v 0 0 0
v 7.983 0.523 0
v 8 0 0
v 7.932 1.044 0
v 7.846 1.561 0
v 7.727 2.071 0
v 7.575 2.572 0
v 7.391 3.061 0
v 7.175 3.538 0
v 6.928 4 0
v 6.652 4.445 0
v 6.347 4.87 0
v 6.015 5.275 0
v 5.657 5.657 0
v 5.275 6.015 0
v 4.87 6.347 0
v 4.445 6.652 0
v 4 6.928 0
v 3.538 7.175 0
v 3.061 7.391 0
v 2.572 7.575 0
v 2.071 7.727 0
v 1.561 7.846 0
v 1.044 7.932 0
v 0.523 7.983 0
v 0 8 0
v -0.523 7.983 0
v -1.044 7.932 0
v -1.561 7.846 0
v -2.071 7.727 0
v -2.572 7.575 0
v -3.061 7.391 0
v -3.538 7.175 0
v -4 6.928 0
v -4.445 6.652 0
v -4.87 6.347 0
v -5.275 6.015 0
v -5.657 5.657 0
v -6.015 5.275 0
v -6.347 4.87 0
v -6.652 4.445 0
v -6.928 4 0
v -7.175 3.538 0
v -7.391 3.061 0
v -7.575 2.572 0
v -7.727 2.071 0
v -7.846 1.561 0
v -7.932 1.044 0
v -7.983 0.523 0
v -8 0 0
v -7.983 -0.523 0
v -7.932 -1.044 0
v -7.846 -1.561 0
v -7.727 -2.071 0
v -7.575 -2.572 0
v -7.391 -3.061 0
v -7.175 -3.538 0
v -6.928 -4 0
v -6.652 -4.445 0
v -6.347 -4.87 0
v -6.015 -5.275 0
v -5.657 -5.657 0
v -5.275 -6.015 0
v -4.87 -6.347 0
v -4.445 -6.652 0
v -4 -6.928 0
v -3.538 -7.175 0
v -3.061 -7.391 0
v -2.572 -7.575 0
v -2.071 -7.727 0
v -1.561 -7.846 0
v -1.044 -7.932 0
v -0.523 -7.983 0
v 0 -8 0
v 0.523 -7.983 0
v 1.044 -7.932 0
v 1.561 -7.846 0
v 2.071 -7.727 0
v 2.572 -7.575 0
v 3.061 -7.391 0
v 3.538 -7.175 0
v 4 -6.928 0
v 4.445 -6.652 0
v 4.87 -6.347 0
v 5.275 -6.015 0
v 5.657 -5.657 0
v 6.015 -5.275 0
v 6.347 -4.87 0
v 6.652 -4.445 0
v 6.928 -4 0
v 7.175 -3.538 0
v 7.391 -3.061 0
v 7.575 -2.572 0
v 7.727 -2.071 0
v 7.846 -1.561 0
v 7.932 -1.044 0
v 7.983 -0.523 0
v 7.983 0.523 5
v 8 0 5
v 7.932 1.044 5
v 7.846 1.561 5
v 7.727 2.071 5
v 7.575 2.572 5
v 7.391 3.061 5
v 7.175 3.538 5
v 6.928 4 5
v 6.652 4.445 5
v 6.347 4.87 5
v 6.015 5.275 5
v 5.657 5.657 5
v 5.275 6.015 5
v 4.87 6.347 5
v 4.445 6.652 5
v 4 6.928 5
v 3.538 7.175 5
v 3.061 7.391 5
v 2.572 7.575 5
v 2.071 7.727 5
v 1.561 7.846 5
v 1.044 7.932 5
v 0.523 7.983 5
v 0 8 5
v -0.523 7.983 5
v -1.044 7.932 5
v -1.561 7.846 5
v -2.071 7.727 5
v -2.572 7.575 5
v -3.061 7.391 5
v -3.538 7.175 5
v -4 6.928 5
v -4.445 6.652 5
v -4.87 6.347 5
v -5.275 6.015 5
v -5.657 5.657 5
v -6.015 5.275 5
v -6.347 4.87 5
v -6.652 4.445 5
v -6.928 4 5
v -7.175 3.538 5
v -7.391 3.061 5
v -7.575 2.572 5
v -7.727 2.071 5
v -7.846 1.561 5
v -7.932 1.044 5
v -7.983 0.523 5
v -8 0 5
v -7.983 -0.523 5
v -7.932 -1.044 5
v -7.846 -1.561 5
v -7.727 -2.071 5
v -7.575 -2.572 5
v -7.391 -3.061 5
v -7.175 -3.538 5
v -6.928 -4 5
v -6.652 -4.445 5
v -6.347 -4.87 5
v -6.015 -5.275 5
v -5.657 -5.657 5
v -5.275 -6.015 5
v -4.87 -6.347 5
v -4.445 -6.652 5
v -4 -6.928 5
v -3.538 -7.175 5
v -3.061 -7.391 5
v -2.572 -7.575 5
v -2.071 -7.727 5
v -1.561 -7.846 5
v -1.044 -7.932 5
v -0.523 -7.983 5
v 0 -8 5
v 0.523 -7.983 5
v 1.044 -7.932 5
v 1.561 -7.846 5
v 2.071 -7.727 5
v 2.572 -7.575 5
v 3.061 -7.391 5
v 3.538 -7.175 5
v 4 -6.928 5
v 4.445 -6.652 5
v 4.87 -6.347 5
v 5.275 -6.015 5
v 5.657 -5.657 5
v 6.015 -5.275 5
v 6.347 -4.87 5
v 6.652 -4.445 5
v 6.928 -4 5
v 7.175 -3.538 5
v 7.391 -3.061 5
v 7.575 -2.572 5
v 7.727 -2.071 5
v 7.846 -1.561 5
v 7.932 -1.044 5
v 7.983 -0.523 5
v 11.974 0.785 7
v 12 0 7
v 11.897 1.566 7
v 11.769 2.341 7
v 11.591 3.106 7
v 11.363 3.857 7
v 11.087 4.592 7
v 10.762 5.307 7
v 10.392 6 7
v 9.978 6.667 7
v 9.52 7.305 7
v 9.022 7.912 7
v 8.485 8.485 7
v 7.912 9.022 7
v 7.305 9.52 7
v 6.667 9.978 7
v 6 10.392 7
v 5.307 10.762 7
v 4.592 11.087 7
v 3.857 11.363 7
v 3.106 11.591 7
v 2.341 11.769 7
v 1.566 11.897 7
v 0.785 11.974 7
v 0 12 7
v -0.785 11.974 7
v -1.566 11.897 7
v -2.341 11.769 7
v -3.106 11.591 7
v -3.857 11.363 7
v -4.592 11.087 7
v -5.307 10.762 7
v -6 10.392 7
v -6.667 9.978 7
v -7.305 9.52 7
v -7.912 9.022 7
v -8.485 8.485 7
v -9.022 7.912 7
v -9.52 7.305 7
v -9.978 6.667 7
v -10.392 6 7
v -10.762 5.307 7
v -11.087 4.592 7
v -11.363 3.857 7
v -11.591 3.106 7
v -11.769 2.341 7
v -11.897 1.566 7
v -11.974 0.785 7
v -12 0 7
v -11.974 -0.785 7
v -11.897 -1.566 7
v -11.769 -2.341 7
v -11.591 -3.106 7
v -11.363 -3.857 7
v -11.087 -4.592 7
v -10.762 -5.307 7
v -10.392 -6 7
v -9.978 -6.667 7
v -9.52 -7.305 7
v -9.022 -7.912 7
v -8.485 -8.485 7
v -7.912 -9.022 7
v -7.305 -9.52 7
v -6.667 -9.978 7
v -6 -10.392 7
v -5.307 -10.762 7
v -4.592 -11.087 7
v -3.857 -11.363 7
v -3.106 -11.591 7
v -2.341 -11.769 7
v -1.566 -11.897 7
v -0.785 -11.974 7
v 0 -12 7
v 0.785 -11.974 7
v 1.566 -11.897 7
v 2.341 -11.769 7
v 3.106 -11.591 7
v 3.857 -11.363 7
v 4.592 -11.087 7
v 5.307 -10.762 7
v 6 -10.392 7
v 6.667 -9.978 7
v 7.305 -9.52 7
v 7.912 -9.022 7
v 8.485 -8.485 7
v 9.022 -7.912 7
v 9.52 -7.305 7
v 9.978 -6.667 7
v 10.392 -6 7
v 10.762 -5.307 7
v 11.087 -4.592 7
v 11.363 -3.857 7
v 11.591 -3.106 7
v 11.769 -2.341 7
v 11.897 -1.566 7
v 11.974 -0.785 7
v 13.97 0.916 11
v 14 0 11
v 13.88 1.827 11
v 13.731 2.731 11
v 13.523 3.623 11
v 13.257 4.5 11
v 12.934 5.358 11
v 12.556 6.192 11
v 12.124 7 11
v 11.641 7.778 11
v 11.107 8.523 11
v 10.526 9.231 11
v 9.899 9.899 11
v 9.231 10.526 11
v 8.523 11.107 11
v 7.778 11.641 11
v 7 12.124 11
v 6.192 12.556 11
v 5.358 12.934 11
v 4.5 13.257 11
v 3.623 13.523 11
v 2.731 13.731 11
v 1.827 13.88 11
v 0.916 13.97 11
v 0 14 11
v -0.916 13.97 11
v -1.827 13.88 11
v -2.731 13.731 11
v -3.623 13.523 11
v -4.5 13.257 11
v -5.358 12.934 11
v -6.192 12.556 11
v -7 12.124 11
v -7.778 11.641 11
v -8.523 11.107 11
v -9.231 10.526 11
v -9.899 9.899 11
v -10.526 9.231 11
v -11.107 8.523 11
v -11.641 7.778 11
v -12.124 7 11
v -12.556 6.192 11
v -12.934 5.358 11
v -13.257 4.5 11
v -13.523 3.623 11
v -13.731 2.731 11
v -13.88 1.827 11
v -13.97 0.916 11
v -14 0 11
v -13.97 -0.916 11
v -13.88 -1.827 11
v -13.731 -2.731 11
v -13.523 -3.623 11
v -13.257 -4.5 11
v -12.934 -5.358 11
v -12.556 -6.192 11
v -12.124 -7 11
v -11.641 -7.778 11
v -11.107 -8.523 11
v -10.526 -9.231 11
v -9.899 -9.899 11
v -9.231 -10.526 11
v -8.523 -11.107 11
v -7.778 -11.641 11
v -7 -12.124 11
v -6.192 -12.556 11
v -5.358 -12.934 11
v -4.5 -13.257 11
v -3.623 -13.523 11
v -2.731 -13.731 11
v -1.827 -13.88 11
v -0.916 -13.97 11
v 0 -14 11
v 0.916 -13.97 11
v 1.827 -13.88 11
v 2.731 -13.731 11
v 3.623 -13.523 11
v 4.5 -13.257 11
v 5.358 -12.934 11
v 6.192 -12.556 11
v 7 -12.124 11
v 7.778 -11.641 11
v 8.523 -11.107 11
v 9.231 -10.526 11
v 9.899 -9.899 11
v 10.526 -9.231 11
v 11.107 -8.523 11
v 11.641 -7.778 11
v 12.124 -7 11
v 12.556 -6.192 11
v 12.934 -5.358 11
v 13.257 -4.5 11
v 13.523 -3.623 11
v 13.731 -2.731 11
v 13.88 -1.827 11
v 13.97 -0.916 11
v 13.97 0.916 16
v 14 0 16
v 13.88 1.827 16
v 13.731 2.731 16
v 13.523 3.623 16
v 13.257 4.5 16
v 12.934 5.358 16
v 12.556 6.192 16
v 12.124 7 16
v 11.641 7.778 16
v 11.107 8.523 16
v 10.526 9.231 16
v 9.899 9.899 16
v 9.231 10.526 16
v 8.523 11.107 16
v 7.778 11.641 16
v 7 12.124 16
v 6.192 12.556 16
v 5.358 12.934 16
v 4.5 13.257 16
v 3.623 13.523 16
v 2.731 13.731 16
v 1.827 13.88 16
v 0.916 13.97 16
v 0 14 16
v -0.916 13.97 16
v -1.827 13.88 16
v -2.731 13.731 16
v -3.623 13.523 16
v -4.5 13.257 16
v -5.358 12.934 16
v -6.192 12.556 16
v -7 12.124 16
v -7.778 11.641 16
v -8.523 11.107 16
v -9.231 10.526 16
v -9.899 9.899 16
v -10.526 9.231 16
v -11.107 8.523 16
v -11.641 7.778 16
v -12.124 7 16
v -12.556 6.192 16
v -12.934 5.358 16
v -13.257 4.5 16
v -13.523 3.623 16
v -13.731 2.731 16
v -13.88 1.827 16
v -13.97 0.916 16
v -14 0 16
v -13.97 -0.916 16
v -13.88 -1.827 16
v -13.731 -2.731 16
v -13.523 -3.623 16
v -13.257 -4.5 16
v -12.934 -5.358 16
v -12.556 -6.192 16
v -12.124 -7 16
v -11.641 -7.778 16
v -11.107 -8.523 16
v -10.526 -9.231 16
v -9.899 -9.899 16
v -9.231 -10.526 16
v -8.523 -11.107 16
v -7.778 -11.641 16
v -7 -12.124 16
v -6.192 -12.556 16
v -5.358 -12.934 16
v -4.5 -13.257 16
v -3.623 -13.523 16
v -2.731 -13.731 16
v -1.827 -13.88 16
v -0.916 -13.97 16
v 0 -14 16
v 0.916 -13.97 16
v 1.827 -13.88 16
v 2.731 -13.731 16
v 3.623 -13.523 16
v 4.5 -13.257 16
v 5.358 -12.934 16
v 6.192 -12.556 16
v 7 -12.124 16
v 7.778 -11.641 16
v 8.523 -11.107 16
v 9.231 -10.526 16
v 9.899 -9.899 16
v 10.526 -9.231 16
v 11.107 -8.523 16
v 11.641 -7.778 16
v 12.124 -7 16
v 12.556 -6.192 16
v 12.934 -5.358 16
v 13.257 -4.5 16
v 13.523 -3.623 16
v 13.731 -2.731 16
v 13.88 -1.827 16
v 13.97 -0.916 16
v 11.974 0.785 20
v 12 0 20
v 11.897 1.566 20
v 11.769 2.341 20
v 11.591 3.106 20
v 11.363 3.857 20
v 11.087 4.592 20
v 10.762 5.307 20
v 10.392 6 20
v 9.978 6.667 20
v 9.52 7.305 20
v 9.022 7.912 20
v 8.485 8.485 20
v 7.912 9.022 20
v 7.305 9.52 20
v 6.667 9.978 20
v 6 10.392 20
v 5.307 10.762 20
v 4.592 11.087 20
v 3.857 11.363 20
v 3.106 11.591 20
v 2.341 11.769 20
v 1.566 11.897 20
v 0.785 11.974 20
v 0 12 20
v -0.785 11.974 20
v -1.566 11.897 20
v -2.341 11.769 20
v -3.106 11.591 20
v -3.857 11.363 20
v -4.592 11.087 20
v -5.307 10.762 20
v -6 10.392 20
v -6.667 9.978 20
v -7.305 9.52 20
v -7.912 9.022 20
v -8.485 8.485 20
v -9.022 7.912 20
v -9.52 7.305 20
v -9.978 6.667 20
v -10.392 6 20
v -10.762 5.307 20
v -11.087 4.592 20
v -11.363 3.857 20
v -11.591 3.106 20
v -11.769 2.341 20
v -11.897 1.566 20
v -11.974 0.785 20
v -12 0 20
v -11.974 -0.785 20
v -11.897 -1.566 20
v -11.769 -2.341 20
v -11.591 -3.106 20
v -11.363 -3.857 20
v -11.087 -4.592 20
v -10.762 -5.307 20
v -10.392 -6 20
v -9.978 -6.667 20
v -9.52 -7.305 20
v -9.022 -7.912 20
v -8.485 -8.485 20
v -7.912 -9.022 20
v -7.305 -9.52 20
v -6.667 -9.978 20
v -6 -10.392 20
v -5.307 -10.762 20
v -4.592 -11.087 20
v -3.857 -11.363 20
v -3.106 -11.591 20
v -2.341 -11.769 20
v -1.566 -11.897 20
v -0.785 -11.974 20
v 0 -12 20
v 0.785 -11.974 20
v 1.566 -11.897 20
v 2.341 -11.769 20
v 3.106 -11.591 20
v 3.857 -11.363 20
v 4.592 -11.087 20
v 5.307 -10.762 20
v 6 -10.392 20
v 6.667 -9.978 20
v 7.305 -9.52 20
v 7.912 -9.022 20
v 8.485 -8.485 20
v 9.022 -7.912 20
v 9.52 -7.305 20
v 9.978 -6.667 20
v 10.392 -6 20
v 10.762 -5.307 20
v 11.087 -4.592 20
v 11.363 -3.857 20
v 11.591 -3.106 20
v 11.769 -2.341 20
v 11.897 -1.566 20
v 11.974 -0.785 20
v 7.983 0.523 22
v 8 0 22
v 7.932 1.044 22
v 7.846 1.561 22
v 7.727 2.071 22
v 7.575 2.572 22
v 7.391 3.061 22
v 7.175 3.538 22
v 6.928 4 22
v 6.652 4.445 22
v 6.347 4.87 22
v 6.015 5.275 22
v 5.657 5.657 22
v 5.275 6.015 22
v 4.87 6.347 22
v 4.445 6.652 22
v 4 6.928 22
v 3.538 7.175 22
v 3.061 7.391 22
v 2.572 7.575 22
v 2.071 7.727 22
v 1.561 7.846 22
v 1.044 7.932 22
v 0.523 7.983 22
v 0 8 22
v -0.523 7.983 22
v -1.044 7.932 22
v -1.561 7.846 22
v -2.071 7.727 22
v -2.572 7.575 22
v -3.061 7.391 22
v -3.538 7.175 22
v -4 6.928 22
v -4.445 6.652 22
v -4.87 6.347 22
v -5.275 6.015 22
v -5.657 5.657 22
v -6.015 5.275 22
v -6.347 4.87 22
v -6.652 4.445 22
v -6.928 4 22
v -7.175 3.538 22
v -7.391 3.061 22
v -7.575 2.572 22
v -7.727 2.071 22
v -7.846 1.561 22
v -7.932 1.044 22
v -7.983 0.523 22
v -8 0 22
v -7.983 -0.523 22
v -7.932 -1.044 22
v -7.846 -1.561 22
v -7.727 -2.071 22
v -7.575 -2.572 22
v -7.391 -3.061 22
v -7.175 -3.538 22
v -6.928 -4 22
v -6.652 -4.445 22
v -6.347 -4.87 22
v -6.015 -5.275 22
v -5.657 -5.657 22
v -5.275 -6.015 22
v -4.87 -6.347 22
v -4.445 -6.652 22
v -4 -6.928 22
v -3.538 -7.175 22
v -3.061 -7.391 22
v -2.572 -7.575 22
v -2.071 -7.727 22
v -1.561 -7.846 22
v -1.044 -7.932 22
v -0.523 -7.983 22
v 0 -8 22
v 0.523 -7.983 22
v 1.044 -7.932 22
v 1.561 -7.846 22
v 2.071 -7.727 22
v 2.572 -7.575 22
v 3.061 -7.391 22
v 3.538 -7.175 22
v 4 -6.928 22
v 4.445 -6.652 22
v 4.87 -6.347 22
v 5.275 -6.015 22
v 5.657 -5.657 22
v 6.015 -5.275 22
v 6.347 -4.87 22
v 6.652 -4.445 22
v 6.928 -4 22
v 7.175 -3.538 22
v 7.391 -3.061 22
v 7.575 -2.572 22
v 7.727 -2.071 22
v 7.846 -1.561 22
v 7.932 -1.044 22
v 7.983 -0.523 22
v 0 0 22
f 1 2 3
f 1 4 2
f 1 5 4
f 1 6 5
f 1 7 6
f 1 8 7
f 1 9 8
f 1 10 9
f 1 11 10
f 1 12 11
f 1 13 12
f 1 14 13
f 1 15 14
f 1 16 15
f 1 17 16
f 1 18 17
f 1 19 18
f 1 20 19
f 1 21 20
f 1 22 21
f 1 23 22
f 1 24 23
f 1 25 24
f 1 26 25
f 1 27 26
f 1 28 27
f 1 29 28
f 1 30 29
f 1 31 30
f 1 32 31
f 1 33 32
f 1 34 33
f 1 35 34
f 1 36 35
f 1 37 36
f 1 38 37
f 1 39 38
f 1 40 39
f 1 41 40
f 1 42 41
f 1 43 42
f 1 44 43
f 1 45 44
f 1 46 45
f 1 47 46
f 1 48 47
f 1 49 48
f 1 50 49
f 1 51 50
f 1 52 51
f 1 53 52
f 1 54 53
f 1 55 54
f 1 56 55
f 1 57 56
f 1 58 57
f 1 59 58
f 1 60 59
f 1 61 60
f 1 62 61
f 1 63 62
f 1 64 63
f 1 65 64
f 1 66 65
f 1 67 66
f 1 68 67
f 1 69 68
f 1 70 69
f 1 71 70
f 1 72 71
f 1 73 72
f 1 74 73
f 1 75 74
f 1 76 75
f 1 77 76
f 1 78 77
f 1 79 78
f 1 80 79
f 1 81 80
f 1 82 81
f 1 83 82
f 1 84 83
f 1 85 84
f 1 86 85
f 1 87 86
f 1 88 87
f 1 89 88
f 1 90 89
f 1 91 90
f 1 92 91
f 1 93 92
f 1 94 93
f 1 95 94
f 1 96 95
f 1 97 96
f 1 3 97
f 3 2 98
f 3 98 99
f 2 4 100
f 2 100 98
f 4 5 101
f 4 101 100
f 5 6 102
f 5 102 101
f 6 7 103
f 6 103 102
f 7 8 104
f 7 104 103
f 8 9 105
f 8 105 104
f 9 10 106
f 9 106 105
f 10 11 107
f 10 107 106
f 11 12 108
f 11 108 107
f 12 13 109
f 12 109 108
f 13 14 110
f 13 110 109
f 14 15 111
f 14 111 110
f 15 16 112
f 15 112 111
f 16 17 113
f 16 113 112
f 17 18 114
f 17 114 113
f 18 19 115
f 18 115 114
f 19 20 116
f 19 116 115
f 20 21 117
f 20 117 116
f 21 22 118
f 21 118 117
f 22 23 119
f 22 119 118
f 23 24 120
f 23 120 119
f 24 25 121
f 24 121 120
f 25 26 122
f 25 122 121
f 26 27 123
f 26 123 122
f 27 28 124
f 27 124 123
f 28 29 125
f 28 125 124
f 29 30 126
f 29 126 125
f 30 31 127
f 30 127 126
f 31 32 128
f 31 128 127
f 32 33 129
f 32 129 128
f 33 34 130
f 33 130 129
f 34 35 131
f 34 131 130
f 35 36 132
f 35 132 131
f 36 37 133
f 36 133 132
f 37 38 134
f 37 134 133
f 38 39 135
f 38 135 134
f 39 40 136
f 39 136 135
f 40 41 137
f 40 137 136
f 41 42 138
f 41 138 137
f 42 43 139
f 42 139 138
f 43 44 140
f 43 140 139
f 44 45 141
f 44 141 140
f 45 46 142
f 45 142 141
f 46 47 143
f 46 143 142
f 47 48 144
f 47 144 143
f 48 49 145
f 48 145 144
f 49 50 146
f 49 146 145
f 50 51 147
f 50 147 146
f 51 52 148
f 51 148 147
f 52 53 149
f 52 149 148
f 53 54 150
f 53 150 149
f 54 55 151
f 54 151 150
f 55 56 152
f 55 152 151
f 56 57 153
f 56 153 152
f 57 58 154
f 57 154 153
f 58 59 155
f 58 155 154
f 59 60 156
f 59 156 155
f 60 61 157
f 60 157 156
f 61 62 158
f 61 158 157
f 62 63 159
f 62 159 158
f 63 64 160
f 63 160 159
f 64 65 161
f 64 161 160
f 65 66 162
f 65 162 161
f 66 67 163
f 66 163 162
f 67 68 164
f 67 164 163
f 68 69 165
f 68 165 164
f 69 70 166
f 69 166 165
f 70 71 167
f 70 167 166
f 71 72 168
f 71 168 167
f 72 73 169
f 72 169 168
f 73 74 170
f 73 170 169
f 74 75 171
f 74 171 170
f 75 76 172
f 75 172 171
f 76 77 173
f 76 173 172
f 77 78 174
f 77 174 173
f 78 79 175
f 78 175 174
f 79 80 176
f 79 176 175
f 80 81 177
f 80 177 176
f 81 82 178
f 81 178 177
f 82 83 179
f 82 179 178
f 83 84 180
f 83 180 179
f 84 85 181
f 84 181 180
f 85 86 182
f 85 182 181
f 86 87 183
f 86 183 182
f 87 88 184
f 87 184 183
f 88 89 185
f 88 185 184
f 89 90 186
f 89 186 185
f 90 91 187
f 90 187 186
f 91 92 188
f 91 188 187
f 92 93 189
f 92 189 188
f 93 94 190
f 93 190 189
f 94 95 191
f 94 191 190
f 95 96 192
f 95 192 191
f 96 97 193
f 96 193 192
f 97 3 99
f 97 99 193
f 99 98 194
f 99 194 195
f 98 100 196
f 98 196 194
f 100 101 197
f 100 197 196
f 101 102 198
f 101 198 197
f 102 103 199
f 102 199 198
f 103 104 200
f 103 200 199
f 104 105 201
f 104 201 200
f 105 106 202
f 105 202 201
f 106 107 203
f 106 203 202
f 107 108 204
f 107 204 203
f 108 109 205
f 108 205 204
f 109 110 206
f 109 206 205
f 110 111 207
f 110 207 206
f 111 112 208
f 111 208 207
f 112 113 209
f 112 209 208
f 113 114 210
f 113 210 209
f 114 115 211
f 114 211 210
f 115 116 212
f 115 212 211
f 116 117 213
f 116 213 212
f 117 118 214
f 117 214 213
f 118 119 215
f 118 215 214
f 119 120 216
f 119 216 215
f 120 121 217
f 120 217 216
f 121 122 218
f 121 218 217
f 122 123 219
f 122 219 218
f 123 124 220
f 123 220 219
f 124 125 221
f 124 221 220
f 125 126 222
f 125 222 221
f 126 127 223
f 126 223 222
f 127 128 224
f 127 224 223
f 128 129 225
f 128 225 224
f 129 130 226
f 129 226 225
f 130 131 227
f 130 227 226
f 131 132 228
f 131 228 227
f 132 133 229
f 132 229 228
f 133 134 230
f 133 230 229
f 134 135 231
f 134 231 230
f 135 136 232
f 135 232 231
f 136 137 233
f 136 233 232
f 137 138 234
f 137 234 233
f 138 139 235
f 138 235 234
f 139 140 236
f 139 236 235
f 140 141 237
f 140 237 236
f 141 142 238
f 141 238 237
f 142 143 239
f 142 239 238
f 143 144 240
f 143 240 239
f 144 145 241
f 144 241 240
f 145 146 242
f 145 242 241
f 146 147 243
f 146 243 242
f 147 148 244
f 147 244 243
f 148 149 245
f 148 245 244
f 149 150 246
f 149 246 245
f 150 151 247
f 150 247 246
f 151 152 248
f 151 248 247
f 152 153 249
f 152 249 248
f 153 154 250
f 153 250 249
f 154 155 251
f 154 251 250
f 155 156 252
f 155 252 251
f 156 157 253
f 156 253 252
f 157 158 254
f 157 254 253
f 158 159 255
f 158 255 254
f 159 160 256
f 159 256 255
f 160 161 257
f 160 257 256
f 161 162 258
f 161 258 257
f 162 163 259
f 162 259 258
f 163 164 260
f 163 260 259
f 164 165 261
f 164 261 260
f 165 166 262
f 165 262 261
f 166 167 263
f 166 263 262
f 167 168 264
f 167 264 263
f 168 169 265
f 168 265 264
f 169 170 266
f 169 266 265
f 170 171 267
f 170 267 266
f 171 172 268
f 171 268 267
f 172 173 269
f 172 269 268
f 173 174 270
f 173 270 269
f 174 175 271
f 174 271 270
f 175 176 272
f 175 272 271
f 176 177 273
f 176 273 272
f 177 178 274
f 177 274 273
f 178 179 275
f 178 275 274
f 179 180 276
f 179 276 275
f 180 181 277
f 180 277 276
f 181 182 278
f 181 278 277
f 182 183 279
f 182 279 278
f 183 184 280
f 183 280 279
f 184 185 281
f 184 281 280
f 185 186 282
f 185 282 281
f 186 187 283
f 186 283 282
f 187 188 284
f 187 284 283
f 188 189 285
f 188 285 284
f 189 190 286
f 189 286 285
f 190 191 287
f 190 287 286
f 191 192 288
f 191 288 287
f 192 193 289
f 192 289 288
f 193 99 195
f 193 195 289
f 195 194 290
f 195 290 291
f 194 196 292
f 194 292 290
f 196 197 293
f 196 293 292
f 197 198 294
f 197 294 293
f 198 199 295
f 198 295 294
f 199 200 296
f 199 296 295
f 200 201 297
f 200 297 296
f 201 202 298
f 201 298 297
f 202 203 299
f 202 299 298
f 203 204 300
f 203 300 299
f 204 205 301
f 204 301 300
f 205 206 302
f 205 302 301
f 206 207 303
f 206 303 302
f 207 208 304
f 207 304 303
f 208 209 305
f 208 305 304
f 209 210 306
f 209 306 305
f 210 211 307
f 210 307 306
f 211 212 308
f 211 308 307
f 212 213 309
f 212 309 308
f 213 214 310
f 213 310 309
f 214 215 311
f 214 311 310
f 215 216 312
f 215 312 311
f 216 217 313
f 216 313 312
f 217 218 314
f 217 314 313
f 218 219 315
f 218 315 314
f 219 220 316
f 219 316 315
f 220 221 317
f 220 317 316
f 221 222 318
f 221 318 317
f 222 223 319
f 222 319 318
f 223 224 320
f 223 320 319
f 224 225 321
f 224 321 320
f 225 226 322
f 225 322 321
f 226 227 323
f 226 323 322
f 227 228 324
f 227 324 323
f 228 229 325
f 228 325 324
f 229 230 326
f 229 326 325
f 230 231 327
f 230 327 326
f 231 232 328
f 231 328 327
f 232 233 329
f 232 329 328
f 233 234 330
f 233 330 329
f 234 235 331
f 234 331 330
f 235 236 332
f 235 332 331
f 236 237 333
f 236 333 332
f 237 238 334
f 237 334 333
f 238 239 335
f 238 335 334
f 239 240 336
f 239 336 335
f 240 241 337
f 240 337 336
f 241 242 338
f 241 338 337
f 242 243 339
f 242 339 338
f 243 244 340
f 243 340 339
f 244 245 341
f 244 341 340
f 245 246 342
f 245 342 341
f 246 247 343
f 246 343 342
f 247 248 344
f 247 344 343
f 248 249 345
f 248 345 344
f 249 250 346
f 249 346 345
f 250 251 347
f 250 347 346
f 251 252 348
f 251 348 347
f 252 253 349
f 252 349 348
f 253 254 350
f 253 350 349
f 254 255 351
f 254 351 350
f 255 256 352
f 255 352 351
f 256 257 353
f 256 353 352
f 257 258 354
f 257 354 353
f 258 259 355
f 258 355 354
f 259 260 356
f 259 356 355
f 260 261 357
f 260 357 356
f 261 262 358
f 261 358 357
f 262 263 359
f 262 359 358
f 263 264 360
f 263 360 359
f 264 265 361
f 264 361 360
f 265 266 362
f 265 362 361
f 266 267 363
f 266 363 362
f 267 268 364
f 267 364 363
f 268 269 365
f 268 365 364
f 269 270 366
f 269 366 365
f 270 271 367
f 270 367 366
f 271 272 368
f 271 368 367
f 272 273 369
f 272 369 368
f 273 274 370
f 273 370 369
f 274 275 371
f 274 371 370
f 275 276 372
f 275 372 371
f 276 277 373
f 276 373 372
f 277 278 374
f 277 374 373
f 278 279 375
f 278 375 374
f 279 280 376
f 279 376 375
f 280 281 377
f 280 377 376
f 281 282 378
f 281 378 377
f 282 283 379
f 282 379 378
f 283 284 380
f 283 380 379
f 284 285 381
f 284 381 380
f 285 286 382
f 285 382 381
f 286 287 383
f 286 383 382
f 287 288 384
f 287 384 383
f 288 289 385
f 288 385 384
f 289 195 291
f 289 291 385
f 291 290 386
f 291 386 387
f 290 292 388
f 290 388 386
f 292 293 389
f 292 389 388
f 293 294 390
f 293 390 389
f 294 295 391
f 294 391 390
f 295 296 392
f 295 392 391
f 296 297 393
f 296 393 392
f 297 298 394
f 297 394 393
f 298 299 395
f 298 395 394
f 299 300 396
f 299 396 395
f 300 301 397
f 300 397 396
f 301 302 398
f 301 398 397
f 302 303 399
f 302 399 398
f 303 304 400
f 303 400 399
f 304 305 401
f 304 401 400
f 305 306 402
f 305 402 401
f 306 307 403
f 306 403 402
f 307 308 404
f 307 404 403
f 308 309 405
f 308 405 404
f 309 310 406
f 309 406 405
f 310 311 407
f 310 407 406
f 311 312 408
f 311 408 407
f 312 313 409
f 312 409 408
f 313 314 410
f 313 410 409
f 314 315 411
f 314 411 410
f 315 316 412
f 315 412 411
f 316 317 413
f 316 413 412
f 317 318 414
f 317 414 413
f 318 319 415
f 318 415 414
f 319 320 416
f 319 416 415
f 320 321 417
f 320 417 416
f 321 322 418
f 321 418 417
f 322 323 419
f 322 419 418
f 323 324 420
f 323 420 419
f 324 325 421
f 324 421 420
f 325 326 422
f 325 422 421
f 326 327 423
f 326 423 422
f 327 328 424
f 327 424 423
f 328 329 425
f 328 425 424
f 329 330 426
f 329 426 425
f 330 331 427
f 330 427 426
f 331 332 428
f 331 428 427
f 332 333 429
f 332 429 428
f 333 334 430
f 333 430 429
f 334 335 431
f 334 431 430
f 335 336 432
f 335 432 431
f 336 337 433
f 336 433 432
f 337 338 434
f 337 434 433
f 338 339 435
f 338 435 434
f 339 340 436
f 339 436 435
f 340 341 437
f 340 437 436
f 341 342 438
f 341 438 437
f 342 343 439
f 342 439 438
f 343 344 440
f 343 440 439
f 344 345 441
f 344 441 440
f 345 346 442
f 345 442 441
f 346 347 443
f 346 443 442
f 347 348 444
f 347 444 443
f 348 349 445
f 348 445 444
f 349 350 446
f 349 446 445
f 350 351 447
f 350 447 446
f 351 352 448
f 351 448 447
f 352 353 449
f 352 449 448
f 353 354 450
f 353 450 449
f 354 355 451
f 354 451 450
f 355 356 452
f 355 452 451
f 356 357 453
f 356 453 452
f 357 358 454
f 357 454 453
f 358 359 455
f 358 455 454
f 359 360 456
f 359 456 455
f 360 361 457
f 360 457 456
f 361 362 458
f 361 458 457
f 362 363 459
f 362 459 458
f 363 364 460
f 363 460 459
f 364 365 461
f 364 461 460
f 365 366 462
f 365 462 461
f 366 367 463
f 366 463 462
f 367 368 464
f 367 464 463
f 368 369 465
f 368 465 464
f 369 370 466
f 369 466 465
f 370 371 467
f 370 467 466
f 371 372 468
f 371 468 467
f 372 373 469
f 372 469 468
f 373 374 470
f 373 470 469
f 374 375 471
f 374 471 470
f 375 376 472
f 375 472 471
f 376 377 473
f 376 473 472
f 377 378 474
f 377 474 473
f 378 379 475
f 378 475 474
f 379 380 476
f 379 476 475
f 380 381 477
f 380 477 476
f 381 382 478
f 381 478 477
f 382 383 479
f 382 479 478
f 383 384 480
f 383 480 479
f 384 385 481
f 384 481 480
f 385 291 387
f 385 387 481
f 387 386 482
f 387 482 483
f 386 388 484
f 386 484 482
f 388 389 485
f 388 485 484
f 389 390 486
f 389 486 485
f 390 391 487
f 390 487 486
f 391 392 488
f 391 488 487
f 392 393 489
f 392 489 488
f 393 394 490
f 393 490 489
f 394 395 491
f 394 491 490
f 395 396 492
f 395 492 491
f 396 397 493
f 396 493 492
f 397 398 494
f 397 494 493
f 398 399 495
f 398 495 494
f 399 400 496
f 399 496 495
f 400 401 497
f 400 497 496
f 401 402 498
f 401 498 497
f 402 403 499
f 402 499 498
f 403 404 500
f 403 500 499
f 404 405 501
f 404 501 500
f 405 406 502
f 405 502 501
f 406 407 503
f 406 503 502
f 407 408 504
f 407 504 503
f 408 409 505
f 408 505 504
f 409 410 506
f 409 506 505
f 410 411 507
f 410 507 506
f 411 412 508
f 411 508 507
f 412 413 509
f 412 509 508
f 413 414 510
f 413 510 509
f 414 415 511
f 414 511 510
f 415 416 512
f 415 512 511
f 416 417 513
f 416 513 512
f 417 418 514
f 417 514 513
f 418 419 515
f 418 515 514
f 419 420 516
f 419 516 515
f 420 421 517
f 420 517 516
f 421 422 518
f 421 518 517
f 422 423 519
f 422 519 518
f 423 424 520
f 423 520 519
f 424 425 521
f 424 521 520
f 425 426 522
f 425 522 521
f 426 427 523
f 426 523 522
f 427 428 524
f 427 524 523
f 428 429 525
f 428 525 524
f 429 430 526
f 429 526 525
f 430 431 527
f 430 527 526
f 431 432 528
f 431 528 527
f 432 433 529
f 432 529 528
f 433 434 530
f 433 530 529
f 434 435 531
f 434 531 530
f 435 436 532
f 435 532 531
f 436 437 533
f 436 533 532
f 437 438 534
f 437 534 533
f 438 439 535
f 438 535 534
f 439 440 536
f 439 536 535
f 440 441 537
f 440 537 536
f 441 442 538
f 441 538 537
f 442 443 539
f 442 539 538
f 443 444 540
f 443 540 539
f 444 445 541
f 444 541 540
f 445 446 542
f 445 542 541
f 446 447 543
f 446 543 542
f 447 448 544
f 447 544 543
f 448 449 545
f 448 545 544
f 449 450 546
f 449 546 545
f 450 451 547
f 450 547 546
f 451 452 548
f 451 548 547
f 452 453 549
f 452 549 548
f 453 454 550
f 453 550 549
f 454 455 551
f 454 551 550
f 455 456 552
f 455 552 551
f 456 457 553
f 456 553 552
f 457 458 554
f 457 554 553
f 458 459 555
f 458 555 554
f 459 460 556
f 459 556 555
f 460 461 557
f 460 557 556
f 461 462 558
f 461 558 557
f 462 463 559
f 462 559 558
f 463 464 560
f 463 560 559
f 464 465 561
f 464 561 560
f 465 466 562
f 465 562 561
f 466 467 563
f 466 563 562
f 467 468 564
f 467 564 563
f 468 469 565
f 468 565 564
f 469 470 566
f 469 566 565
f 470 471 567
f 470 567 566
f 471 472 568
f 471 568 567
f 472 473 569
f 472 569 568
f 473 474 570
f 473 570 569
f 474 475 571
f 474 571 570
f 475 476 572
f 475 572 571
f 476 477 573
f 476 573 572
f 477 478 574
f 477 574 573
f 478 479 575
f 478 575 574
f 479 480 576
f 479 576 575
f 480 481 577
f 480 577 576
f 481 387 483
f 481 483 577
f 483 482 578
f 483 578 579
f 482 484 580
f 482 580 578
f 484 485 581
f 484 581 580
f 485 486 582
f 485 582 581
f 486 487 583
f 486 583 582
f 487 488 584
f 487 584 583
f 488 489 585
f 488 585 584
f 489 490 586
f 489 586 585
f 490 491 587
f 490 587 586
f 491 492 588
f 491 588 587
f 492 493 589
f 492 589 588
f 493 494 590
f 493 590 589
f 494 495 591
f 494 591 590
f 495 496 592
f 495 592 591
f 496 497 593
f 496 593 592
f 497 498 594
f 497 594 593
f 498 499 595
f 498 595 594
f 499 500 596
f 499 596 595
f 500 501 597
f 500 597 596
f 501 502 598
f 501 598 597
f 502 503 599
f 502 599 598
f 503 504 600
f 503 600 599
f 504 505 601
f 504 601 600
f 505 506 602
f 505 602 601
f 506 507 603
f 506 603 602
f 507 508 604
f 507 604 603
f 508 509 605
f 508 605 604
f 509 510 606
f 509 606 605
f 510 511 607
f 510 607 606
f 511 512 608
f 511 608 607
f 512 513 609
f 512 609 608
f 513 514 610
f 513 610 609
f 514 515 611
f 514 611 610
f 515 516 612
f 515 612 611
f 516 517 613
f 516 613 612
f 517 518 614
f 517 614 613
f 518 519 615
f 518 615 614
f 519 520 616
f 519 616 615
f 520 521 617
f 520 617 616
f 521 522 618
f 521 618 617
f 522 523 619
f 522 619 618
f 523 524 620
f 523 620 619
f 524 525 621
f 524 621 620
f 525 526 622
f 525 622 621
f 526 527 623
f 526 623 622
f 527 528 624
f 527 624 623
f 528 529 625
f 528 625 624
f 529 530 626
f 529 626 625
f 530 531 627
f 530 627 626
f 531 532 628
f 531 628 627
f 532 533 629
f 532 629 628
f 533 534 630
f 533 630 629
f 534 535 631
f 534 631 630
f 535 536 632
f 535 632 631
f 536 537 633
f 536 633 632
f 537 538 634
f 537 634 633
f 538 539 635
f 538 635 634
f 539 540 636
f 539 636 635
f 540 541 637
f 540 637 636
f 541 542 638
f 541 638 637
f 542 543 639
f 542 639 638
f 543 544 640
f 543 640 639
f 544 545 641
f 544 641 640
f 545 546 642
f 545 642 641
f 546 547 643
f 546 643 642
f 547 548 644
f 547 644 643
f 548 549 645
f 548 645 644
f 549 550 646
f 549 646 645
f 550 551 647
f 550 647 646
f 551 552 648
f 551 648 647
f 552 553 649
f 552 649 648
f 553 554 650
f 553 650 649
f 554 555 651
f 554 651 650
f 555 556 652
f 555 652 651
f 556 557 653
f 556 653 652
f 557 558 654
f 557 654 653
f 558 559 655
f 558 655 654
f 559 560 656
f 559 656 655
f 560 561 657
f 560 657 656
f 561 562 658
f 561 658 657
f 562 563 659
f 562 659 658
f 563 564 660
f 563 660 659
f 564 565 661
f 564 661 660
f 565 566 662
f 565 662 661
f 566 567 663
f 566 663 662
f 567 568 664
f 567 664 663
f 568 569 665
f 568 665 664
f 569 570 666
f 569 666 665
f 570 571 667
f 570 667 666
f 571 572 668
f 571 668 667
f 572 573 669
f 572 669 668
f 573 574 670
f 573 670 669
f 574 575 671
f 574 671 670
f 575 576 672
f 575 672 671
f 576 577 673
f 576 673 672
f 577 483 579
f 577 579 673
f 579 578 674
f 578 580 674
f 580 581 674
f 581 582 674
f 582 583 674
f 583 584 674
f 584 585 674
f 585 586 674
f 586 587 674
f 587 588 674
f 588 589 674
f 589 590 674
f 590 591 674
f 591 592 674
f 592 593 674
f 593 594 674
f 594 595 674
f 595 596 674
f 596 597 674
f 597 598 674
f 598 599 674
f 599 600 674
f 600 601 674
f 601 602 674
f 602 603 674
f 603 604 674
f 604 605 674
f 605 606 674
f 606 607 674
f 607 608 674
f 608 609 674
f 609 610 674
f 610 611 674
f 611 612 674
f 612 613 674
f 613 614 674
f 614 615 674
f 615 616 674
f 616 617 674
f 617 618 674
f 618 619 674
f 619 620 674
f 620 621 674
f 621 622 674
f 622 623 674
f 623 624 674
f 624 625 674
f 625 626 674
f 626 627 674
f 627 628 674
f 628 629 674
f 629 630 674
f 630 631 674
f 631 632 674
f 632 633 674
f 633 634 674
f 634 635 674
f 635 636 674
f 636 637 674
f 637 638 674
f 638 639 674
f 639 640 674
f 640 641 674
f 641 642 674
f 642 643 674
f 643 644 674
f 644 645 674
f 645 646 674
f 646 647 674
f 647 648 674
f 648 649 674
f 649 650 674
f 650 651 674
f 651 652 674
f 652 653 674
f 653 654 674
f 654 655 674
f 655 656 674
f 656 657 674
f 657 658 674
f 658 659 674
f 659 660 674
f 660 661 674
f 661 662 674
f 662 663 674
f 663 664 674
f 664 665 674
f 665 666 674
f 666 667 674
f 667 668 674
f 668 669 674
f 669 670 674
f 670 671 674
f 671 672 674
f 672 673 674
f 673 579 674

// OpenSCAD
// Original MechIntel educational model. CC0-1.0. Units: mm.
// Not a standardized or load-rated component.
$fn=96;
// Section points: [radius, height], mm. Edit to change the profile.
section=[[0, 0], [8, 0], [8, 5], [12, 7], [14, 11], [14, 16], [12, 20], [8, 22], [0, 22]];
rotate_extrude($fn=96) polygon(points=section);
